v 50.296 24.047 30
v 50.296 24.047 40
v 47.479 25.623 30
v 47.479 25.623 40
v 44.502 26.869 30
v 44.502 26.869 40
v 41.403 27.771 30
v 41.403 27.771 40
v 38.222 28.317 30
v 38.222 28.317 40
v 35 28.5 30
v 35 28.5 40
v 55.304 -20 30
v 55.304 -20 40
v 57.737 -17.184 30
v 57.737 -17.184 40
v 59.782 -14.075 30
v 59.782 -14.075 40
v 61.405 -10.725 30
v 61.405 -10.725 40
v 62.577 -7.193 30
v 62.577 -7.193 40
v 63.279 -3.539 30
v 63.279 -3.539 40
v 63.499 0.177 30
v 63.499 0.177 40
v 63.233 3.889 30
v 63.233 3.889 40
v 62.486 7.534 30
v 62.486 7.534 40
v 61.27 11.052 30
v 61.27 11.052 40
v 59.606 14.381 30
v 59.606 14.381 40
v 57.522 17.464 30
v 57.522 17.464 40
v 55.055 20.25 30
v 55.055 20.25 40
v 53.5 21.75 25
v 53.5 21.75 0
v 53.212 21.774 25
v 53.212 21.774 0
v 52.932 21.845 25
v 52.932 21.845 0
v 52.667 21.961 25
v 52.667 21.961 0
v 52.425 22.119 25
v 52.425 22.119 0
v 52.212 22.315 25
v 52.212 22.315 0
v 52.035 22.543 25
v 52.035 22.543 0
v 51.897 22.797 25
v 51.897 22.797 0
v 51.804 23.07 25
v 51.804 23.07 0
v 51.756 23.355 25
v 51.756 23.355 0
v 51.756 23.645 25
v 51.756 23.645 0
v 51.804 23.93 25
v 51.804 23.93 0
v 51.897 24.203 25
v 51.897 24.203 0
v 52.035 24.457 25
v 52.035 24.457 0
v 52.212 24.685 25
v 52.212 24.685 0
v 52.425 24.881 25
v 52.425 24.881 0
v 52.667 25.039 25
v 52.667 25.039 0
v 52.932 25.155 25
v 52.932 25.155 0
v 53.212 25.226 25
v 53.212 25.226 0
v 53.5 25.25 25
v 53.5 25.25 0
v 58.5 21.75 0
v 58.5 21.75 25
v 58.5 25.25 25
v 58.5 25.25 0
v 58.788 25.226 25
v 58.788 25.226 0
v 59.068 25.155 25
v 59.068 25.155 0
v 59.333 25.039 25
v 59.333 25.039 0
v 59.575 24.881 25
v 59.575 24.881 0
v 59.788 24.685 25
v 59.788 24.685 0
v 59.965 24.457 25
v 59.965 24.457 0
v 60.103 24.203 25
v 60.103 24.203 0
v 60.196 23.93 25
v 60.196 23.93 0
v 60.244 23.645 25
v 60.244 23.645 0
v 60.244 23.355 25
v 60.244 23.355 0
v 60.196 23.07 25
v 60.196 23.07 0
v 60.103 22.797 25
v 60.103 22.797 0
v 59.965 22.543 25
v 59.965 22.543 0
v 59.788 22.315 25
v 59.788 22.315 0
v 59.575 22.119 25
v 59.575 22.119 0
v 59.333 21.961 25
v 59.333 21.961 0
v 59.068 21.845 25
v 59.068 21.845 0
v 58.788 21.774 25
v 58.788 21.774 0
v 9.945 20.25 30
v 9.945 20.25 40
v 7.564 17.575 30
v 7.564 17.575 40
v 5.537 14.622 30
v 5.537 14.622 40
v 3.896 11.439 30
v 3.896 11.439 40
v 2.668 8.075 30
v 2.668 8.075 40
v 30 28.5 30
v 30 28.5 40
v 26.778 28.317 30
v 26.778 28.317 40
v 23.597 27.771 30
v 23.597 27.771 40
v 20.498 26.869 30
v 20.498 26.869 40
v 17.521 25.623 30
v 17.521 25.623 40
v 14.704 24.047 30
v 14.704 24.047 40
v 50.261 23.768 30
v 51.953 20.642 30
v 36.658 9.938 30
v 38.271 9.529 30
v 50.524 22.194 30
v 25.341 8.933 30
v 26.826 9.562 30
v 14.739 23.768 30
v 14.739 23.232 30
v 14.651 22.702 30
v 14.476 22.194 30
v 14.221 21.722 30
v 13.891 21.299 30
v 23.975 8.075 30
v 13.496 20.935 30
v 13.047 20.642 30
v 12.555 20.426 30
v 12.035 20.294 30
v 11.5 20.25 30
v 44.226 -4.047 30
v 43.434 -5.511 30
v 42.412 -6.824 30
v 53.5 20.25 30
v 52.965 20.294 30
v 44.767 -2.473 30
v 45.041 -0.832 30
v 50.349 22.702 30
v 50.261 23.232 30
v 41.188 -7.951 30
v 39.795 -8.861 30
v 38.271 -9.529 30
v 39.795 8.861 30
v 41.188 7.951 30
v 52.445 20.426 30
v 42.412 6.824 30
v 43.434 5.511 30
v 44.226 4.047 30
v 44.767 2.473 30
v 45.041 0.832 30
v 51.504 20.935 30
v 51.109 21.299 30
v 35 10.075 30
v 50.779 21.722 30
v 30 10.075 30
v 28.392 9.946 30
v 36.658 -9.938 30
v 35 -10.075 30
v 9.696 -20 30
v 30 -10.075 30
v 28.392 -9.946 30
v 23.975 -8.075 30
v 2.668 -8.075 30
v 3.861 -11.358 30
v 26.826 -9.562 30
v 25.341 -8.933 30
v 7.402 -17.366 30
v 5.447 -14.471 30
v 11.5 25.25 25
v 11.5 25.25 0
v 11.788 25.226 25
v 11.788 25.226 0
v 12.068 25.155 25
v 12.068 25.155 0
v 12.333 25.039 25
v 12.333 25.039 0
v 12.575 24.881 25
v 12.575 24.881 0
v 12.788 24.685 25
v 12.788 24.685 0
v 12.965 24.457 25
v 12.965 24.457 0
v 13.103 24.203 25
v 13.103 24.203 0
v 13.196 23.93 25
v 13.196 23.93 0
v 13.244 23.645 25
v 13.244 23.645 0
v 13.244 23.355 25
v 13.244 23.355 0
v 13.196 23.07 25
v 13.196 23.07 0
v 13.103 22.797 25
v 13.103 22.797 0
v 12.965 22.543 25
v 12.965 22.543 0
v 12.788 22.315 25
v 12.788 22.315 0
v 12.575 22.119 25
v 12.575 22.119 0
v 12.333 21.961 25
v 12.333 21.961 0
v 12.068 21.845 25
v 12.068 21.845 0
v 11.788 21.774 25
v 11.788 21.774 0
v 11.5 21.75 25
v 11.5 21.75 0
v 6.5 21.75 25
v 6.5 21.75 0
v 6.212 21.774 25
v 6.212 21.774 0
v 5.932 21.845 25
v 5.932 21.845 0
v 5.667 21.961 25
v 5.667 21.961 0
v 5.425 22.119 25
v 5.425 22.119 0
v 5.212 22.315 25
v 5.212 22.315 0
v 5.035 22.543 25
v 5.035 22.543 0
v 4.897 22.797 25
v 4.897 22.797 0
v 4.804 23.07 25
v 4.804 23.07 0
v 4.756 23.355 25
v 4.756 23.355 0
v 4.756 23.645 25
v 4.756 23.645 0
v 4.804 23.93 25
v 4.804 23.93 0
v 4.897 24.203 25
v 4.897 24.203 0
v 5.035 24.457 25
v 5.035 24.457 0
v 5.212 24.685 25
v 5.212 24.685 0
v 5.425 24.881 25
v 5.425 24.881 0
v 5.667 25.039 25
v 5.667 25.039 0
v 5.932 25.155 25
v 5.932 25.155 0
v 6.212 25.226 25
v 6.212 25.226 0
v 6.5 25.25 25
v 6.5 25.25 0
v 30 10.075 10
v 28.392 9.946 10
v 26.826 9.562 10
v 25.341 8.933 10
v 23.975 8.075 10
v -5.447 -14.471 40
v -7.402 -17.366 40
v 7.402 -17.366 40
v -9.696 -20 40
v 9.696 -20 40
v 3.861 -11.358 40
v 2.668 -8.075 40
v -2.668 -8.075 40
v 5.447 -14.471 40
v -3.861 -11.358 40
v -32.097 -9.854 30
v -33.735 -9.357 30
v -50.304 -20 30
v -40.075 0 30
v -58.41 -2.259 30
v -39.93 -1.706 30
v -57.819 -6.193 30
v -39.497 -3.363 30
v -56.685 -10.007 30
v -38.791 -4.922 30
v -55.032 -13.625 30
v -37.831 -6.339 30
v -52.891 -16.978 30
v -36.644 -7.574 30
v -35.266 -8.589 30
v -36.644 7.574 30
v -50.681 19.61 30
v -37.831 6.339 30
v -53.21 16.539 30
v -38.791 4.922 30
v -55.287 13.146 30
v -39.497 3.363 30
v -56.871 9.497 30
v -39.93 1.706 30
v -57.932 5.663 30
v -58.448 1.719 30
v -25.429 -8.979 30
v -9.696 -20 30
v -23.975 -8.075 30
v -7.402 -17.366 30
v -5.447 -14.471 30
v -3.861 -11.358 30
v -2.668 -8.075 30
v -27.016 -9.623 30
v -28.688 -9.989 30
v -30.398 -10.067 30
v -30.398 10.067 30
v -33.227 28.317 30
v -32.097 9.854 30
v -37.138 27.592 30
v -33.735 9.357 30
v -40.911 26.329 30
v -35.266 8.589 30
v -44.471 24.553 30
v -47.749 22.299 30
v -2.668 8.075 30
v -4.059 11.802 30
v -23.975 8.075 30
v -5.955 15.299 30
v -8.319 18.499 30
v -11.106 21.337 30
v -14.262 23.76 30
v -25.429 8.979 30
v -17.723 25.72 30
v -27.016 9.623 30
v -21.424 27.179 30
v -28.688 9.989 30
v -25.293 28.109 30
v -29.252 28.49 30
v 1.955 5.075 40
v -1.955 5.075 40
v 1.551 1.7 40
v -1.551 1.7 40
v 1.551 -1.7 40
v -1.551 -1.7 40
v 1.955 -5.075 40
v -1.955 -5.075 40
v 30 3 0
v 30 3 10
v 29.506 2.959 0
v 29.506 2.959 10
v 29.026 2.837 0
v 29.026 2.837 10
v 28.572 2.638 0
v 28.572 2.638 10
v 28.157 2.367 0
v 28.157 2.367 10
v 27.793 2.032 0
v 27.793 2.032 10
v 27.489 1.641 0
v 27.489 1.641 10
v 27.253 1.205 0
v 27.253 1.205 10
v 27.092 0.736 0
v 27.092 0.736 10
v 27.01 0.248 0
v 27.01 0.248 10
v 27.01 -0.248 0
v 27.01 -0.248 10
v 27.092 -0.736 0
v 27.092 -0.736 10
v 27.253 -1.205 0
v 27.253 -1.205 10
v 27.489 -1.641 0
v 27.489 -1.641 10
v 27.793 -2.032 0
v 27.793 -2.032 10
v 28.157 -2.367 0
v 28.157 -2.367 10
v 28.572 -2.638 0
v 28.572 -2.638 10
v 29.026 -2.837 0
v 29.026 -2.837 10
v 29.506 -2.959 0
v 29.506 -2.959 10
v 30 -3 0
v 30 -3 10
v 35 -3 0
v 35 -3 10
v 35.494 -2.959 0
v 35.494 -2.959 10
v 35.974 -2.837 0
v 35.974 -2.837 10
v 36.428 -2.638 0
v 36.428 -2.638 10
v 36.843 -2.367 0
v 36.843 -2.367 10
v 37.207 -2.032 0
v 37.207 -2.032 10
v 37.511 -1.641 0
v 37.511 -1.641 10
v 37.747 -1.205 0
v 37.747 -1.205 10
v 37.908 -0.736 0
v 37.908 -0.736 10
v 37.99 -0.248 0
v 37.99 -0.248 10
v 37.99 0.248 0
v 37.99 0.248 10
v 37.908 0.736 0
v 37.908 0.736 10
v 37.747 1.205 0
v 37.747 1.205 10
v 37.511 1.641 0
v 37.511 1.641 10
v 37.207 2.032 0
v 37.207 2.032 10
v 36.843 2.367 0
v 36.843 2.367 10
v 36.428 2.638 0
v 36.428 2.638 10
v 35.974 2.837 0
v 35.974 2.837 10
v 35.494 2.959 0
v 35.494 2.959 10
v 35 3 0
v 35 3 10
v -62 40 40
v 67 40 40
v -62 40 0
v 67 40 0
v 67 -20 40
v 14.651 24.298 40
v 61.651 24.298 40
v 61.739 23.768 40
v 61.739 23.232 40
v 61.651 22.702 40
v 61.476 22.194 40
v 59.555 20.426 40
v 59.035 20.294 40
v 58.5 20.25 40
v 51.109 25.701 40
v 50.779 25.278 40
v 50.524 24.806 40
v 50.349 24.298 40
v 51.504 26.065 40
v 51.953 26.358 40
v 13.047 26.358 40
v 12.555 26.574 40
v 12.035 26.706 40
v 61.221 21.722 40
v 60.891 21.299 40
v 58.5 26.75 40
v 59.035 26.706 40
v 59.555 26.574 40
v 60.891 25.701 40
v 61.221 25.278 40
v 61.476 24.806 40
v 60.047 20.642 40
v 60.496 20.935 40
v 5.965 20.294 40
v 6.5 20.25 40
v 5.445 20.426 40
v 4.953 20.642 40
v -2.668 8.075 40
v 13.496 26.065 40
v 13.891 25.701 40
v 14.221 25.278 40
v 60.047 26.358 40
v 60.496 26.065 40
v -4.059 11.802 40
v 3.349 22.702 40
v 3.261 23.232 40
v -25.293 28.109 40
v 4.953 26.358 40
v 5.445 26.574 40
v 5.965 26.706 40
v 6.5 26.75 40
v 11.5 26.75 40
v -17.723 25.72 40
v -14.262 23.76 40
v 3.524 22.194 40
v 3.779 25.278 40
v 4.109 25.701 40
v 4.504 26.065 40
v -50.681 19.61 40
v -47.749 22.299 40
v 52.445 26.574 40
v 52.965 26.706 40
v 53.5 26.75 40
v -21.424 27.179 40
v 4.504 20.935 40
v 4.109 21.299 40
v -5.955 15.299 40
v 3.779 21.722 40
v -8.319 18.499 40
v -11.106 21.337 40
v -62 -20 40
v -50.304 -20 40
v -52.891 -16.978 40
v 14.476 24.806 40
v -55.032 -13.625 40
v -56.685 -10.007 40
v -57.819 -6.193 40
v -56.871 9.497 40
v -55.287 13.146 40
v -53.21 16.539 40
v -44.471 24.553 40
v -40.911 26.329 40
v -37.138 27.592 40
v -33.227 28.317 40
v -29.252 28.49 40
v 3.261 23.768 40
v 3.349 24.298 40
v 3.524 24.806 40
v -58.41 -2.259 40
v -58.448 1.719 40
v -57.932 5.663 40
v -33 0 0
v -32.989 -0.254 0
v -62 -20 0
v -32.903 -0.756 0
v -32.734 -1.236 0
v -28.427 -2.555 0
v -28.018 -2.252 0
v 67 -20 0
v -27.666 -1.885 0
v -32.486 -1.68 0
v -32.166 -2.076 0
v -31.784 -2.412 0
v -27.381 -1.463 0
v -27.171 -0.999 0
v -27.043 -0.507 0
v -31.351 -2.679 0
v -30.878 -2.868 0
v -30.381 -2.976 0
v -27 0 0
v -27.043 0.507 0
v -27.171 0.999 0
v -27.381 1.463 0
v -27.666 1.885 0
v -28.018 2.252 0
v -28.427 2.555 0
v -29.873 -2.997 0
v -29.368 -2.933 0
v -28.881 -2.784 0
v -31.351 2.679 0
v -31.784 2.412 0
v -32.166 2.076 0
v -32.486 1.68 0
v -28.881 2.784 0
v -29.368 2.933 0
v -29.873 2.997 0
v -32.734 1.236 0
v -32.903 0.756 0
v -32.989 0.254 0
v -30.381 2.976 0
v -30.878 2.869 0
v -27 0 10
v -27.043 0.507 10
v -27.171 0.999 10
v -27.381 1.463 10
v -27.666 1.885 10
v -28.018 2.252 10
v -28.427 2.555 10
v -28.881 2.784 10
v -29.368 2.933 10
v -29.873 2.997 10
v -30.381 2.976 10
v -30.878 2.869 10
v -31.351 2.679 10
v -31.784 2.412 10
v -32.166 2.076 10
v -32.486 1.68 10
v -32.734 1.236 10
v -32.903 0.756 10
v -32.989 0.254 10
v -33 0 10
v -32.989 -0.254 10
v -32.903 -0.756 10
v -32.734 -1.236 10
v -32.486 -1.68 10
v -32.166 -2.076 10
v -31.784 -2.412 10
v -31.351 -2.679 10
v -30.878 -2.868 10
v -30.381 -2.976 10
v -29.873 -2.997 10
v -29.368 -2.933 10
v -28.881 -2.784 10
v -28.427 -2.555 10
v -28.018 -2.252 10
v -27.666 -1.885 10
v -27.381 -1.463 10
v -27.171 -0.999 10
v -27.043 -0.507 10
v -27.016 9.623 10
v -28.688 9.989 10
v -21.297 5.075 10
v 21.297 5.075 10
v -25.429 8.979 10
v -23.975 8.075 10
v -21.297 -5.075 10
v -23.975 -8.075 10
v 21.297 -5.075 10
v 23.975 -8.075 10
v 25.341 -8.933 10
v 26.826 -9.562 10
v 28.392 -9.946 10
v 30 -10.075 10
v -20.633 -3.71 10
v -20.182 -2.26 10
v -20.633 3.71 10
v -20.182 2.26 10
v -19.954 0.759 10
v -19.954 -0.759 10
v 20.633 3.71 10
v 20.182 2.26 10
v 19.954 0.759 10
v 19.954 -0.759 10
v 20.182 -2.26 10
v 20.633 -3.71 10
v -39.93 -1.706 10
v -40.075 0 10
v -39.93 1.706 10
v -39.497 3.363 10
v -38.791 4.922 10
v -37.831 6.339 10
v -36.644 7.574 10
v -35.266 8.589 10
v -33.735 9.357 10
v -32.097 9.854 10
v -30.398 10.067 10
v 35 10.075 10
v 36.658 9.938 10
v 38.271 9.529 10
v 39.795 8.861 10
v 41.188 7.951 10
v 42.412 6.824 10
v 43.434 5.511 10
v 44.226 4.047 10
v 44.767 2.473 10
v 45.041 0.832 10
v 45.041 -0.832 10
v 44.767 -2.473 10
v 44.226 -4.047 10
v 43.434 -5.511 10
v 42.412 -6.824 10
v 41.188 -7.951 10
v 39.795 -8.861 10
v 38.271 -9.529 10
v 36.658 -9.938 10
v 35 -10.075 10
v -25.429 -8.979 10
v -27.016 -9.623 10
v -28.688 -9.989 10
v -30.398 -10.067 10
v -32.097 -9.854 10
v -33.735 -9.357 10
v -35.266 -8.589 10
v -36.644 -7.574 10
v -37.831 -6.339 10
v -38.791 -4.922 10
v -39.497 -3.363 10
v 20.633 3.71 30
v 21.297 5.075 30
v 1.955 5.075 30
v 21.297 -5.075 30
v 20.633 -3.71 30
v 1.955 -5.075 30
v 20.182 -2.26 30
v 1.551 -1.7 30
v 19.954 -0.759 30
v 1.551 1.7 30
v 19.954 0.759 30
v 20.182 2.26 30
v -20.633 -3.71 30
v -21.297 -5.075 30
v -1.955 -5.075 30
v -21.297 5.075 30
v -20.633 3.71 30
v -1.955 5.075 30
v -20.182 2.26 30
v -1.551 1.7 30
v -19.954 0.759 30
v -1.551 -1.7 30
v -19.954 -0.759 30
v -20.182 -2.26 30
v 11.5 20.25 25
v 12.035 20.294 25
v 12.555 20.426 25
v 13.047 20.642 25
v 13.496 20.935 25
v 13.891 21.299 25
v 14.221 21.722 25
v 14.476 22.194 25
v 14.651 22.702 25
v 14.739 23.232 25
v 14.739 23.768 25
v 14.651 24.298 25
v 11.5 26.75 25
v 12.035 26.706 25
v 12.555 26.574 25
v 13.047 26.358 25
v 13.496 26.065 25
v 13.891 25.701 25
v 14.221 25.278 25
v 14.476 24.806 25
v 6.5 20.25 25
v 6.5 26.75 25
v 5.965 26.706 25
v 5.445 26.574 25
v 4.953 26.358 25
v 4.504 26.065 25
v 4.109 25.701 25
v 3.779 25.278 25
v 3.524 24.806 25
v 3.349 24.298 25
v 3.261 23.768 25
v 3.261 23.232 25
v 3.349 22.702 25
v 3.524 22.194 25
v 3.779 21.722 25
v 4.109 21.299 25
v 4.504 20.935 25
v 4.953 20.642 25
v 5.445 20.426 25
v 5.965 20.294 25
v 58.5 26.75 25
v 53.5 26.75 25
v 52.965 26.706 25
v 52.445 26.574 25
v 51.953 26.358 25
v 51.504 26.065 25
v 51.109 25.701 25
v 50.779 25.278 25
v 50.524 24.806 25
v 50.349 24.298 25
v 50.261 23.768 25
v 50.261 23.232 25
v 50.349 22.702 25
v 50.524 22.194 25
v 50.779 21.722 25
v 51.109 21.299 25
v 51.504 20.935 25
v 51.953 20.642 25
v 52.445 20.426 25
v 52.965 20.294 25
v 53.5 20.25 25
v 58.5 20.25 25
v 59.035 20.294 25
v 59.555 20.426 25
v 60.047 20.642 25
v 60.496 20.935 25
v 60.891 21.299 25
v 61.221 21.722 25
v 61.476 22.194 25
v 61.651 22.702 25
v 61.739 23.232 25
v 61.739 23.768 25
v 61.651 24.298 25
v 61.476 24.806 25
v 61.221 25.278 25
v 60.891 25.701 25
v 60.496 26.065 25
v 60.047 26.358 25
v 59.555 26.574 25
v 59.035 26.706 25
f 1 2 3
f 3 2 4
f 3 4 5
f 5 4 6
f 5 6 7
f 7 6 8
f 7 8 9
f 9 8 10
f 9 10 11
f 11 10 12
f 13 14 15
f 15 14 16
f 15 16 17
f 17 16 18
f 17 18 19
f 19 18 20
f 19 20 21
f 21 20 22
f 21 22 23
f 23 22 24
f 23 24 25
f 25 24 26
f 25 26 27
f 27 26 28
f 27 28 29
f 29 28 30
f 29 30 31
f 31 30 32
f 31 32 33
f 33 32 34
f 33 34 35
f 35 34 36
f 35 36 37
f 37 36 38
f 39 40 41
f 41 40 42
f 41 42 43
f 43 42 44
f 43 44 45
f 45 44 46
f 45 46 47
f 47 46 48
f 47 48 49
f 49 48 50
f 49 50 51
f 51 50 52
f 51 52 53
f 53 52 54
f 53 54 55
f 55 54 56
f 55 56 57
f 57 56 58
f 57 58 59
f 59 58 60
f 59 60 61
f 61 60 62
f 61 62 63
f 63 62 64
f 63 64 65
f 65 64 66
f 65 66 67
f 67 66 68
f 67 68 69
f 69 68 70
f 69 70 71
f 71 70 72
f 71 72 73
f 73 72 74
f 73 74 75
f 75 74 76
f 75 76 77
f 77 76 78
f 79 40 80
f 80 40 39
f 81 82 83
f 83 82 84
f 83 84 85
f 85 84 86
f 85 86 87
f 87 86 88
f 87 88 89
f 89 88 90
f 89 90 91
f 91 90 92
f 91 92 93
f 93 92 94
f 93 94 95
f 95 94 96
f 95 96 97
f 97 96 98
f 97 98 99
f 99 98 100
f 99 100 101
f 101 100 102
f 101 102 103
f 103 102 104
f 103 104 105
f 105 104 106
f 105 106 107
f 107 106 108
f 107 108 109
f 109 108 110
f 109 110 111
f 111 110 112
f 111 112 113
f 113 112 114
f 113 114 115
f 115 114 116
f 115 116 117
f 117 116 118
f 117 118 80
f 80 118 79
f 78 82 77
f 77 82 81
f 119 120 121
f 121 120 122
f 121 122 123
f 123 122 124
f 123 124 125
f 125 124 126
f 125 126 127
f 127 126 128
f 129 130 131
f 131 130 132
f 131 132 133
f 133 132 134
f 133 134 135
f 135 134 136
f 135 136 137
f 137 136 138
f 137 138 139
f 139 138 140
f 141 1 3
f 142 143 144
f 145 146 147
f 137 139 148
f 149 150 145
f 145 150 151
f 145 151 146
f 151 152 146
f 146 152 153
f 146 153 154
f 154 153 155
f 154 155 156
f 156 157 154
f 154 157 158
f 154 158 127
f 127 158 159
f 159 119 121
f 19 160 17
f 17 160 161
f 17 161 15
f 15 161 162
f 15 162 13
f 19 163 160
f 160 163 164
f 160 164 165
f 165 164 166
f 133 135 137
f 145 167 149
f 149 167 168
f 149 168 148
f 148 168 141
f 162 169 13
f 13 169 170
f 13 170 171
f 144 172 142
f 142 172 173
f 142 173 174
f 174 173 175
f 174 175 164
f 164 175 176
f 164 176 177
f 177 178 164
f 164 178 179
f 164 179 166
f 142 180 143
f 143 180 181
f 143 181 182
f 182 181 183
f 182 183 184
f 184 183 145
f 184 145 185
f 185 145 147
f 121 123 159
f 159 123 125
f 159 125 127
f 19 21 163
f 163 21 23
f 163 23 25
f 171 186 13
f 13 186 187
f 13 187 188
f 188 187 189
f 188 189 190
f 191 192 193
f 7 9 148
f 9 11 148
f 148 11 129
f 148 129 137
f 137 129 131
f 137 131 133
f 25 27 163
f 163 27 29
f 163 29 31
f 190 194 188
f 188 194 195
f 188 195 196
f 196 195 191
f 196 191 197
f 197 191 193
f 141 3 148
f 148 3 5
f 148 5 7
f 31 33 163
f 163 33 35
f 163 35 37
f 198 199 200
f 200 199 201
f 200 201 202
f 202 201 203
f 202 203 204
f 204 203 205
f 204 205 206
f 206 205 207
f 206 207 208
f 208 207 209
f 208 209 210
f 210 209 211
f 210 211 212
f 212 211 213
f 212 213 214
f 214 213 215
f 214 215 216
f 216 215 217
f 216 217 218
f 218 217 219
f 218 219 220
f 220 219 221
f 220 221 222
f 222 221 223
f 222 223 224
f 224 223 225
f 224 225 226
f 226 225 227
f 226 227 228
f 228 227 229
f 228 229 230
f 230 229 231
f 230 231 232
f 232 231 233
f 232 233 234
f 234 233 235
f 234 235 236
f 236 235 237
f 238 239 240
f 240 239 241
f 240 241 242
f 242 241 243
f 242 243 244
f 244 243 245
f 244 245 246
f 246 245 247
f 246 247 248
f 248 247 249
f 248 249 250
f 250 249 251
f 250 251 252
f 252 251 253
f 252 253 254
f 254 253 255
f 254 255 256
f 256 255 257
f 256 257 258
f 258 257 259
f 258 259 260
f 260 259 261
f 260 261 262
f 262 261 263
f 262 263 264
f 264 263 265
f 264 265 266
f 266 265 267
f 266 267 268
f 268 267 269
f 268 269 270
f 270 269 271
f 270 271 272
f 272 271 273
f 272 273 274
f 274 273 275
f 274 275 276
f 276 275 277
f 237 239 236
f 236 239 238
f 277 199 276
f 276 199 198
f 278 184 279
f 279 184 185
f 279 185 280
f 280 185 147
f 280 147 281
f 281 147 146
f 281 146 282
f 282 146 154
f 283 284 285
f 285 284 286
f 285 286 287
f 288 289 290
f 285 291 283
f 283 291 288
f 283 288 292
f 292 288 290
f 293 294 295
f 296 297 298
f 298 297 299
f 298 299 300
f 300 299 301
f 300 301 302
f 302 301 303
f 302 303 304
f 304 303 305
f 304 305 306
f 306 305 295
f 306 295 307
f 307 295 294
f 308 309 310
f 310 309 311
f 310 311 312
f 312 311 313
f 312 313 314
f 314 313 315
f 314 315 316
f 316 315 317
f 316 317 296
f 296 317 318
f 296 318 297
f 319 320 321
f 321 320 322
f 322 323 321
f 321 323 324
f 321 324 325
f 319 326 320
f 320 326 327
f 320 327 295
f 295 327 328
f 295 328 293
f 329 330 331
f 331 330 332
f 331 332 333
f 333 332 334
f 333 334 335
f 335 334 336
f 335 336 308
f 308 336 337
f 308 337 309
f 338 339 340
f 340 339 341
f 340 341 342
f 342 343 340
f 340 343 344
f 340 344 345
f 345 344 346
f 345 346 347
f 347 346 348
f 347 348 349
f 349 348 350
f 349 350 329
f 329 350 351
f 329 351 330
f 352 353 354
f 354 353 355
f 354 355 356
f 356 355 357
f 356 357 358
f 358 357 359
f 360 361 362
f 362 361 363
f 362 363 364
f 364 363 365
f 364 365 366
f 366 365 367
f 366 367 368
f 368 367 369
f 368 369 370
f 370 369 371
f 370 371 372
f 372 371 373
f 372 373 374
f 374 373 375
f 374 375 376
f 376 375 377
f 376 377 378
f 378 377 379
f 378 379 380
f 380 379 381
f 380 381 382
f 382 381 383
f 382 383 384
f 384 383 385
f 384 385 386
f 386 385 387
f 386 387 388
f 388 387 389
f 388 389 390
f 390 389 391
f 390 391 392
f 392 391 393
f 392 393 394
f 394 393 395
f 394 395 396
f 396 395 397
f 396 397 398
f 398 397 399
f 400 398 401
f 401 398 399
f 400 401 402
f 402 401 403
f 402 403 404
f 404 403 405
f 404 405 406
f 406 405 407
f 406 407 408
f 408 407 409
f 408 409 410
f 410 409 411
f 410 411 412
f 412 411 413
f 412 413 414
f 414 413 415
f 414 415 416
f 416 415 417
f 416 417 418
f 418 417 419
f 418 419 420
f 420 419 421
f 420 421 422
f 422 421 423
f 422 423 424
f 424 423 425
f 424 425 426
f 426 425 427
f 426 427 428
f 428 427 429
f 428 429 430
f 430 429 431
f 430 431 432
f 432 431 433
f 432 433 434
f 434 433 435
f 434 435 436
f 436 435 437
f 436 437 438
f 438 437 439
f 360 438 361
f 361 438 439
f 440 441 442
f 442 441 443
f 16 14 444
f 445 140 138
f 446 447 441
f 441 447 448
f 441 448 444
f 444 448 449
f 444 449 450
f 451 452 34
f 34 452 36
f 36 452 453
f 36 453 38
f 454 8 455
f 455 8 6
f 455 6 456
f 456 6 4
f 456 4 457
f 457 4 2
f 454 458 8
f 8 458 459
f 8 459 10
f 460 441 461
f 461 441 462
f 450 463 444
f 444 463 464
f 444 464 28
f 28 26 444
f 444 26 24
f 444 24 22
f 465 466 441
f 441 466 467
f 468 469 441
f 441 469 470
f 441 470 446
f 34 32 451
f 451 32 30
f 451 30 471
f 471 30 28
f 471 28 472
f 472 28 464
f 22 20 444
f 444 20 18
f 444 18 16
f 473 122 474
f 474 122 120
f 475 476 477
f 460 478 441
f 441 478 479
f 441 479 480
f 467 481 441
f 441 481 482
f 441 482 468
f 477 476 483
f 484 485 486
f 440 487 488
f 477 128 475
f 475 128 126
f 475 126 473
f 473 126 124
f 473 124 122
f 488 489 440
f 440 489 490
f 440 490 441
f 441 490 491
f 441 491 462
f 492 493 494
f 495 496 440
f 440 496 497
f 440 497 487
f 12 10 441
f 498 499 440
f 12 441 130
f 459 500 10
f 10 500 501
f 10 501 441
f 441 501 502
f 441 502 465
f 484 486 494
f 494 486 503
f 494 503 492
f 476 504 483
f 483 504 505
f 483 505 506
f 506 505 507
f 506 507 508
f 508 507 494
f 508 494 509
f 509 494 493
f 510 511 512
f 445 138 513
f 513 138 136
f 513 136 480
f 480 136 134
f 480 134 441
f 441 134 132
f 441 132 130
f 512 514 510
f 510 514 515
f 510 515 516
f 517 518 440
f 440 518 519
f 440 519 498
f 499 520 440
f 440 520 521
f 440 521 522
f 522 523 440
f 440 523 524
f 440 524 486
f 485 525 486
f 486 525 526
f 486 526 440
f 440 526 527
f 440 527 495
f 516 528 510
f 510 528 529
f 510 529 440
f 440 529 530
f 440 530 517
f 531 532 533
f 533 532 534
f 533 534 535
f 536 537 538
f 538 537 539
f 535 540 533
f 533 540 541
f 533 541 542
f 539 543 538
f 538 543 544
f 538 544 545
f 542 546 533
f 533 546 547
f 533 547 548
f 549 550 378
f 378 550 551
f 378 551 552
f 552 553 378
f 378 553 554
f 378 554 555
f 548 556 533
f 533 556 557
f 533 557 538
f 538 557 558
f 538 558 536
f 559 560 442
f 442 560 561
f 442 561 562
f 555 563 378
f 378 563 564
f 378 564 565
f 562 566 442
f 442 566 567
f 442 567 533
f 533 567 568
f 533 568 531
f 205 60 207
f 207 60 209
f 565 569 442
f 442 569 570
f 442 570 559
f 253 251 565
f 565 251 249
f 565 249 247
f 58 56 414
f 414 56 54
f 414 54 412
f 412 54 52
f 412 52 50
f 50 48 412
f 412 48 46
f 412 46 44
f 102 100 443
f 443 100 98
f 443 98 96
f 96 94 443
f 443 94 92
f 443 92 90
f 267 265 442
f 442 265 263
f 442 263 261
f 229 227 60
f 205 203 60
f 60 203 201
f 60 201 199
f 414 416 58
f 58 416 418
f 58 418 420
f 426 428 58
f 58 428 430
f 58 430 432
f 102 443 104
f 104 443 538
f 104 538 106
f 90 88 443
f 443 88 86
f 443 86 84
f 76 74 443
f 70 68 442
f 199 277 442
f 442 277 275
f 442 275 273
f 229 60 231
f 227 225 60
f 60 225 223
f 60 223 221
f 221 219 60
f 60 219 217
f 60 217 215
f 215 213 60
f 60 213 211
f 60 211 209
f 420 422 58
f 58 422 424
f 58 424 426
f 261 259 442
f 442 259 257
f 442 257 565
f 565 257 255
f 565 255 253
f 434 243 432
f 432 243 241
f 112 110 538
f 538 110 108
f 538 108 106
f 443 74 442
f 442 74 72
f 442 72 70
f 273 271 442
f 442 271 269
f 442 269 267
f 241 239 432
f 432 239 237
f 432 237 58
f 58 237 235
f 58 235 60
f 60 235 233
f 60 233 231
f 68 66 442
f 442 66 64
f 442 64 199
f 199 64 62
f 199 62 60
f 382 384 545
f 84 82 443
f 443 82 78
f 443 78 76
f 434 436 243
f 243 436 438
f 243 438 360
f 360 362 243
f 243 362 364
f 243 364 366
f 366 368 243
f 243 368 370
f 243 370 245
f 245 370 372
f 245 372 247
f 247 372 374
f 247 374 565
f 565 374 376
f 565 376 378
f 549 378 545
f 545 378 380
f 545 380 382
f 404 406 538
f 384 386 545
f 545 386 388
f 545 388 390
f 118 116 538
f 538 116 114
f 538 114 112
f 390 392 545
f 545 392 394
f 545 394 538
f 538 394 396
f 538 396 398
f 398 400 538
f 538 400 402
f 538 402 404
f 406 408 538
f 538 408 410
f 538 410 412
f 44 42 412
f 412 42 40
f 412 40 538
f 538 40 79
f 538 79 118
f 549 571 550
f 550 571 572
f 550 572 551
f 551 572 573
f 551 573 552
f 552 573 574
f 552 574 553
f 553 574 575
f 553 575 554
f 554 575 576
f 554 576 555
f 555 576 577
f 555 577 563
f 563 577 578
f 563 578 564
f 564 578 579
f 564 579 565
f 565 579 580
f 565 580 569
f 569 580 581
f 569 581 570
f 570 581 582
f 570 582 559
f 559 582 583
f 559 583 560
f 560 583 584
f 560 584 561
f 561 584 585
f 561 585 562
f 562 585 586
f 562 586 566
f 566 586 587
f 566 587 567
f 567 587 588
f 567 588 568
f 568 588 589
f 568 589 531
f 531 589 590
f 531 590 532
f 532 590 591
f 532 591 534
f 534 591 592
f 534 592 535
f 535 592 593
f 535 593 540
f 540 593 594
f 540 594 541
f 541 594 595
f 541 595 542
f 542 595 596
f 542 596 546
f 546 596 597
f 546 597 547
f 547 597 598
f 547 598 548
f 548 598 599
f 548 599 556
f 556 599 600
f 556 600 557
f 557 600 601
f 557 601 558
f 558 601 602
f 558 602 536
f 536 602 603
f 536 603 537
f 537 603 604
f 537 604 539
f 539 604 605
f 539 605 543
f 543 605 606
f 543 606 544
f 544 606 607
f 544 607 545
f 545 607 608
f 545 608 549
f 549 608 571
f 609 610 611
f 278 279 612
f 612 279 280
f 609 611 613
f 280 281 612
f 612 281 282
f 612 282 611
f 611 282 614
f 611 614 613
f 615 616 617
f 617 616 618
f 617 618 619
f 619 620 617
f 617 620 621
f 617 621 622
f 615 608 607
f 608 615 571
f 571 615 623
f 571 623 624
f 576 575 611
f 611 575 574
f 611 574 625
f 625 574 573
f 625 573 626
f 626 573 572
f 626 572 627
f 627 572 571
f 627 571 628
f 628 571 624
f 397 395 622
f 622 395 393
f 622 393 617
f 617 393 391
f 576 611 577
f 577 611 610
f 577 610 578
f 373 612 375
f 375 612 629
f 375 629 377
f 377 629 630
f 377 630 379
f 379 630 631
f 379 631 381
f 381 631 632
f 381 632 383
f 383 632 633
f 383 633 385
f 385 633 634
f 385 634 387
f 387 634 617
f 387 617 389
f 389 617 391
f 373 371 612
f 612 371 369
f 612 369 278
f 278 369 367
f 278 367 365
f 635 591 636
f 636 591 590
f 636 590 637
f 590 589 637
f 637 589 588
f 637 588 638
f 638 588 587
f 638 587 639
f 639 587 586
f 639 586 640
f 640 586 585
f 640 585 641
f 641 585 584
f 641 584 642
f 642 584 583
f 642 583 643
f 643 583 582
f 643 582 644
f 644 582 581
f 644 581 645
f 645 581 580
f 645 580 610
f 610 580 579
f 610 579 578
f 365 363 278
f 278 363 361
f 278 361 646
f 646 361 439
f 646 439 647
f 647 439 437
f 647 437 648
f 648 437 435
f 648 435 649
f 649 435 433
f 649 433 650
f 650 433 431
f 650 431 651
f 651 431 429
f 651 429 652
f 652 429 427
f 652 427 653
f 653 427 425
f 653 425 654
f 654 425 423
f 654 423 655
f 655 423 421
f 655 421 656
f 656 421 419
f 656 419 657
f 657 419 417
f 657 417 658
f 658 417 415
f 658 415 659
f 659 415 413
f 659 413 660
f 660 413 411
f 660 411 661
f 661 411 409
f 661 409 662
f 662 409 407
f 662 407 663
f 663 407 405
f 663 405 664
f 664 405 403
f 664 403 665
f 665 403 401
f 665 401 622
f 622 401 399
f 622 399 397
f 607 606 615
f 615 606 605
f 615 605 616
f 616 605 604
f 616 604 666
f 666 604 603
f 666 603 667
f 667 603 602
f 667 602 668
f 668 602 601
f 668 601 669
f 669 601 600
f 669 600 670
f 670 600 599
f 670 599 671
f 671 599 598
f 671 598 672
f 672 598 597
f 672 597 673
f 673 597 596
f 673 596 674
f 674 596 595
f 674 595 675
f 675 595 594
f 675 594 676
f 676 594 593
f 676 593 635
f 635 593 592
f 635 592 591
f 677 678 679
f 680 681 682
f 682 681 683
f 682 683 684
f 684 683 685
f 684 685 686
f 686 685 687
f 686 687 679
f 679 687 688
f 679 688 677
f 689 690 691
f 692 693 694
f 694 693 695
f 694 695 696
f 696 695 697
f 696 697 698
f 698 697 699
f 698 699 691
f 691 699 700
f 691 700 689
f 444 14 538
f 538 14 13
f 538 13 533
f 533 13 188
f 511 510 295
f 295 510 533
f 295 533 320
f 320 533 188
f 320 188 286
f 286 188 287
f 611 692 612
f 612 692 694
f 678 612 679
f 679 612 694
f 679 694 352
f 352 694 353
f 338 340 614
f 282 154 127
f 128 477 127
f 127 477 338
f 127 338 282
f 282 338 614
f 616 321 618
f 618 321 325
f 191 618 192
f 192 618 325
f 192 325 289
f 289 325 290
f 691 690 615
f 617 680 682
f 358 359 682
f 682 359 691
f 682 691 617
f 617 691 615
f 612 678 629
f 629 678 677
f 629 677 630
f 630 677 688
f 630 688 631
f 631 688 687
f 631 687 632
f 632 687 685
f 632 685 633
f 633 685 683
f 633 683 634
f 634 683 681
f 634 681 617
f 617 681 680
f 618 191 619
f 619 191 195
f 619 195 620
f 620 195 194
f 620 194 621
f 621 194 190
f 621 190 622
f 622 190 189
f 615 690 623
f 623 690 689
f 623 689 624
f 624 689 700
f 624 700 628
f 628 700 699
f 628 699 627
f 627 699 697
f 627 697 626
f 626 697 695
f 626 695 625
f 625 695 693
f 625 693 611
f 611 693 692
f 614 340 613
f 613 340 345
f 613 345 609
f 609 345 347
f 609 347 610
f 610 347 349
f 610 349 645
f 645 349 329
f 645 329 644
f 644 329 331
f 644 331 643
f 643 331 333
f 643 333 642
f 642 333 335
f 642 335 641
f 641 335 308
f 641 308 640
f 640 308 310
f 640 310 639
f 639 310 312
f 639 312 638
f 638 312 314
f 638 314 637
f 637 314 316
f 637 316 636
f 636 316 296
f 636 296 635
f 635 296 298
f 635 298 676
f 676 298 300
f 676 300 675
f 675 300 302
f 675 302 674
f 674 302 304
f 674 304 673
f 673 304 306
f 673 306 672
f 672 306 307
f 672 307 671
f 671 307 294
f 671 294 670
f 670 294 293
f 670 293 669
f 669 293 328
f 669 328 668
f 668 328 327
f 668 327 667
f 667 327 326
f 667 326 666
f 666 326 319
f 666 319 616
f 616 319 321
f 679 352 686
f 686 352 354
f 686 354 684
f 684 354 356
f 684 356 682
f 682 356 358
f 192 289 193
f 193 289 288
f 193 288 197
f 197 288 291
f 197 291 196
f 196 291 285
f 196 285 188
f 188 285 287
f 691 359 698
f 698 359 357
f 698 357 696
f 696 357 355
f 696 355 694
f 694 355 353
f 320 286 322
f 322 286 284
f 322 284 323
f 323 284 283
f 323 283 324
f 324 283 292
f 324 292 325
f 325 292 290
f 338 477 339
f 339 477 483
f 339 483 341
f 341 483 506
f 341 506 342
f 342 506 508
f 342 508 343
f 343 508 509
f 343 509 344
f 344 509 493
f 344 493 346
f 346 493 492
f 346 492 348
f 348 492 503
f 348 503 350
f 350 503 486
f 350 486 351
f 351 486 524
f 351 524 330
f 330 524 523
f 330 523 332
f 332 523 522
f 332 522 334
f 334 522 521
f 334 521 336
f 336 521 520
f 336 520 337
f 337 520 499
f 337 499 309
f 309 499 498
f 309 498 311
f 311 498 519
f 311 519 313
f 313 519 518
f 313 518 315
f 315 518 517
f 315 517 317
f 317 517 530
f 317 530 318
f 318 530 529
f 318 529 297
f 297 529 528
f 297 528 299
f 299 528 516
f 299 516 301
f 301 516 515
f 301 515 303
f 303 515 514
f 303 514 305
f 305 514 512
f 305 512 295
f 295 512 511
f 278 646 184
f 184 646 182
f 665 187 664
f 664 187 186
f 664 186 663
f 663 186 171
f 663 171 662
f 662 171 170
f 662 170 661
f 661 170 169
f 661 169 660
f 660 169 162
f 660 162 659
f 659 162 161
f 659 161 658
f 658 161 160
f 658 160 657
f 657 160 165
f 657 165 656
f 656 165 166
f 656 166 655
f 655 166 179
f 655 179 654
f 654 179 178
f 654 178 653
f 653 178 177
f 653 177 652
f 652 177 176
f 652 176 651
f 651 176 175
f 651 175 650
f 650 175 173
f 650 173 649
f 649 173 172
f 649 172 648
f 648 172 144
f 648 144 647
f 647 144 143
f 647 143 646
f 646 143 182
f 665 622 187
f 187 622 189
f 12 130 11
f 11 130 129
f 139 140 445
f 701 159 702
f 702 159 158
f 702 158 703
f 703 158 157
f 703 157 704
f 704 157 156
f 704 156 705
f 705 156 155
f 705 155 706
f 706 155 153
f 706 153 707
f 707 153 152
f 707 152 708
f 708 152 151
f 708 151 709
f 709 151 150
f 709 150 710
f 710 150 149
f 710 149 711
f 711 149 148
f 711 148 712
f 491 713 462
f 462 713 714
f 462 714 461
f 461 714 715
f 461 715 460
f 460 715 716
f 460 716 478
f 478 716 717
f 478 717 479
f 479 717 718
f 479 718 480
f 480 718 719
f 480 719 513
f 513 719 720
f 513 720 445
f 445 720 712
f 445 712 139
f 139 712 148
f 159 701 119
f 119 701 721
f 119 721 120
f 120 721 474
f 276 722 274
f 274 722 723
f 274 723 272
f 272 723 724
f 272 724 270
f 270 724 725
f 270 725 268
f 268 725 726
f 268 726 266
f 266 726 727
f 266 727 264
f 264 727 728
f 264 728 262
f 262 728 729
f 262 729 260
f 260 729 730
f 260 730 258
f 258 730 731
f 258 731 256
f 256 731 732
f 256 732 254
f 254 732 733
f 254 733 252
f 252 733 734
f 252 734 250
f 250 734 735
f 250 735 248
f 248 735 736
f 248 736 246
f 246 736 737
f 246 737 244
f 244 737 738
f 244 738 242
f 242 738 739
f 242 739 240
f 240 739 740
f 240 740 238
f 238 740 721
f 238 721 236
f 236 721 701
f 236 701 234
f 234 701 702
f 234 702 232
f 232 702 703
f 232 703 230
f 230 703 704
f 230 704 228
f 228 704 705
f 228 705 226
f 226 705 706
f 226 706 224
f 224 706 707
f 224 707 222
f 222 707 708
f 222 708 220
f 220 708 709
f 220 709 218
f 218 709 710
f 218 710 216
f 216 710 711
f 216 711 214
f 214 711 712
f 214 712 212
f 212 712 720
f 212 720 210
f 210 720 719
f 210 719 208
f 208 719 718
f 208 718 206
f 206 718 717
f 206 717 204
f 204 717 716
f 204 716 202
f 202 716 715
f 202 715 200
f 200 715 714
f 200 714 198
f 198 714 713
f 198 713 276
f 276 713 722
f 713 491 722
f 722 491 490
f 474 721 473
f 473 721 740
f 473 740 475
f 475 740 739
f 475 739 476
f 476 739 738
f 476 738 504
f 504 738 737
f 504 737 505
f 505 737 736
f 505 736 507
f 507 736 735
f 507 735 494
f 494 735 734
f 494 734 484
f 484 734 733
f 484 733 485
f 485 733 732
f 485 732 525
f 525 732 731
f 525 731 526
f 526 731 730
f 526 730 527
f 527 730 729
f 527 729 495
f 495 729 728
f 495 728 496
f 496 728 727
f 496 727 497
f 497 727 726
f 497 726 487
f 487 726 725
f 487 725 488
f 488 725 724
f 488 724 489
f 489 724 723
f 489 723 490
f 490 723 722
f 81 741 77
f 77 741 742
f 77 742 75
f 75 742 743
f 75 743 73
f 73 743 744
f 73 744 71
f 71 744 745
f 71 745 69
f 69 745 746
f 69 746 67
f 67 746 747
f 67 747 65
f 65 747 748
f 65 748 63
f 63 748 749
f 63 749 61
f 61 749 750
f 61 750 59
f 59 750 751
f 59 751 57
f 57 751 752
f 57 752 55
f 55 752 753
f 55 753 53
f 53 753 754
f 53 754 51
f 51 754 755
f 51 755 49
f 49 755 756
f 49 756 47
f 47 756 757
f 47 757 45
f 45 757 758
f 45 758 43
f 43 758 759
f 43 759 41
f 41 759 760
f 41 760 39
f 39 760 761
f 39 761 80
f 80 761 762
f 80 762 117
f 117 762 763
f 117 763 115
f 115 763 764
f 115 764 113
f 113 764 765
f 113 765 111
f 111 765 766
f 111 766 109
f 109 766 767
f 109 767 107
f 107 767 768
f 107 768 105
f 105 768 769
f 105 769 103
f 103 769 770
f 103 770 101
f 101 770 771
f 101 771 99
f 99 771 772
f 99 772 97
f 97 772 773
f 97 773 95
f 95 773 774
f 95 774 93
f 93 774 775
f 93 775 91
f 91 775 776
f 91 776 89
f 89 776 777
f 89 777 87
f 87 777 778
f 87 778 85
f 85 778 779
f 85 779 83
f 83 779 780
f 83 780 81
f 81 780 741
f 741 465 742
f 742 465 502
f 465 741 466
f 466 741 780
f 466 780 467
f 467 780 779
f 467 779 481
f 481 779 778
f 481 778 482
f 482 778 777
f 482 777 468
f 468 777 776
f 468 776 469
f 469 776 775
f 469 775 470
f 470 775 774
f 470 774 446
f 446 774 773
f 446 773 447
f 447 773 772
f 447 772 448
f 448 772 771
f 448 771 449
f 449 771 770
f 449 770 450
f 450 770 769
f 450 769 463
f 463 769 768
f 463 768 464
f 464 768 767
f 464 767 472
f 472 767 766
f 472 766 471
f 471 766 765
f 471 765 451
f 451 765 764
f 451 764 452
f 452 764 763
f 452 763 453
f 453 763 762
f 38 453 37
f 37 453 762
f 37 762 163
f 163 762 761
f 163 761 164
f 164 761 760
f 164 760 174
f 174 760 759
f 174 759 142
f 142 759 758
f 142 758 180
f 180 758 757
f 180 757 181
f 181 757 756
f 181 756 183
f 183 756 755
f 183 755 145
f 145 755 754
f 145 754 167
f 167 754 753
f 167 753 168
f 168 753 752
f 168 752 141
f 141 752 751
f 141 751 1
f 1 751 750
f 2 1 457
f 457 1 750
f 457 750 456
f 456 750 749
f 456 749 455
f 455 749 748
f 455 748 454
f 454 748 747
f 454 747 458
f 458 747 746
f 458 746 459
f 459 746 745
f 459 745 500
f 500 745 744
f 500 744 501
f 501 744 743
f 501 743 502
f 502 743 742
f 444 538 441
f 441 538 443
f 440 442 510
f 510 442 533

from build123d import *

# Parameters (mm, degrees)
SKETCH1_W                          = 200
SKETCH1_H                          = 90
BOSS_EXTRUDE1_DEPTH                = 40
SHAFTFITS_WITH_5MM_TOLERANCE_REACH = 120.743
SKETCH2_R                          = 3
SHAFTFITTOLERANCE_DEPTH            = 40
SKETCH3_R                          = 8.075
PULLEY_DEPTH                       = 30
SKETCH4_R                          = 26.5
GEARS_FITS_DEPTH                   = 10
GEAR_LETOUT_REACH                  = 120.743
SKETCH5_W                          = 200
SKETCH5_H                          = 30
CLOSED_LOOP_TIMING_BELT_REACH      = 116.891
SKETCH8_W                          = 60
SKETCH8_H                          = 3
SKETCH7_R                          = 10.075
PULLEY_MARGIN_DEPTH                = 20
SKETCH6_R                          = 28.5
GEAR_MARGIN_DEPTH                  = 10
PULLEYFIXTOLERANCE_DEPTH           = 30
GEARFITSTOLERANCE_DEPTH            = 10
M3_SCREWHOLES_REACH                = 116.891
M3_SCREWHEADS_DEPTH                = 5
M3_SCREWHEADS_DIRECTION_2_REACH    = 113.803
SKETCH16_W                         = 33
SKETCH16_H                         = 60
REMOVEEXTRA1_DEPTH                 = 40
SKETCH17_W                         = 5
SKETCH17_H                         = 60
REMOVEEXTRA2_DEPTH                 = 40


with BuildPart() as part:
    # Sketch1 → Boss-Extrude1 (new body)
    with BuildSketch(Plane.XY):
        with Locations((0, -5)):
            Rectangle(SKETCH1_W, SKETCH1_H)
    extrude(amount=BOSS_EXTRUDE1_DEPTH)

    # Sketch2 → ShaftFits_with.5mm_tolerance (cut, up to next)
    with BuildSketch(Plane.XY.offset(40), mode=Mode.PRIVATE) as shaftfits_with_5mm_tolerance_sk1:
        with Locations((30, 0)):
            Circle(SKETCH2_R)
    shaftfits_with_5mm_tolerance_tool1 = extrude(shaftfits_with_5mm_tolerance_sk1.sketch, amount=-SHAFTFITS_WITH_5MM_TOLERANCE_REACH, mode=Mode.PRIVATE) & part.part
    # Sketch2 → ShaftFits_with.5mm_tolerance (cut, up to next)
    with BuildSketch(Plane.XY.offset(40), mode=Mode.PRIVATE) as shaftfits_with_5mm_tolerance_sk2:
        with Locations(Location((-30, 0, 0), (0, 0, 180))):
            Circle(SKETCH2_R)
    shaftfits_with_5mm_tolerance_tool2 = extrude(shaftfits_with_5mm_tolerance_sk2.sketch, amount=-SHAFTFITS_WITH_5MM_TOLERANCE_REACH, mode=Mode.PRIVATE) & part.part
    add(shaftfits_with_5mm_tolerance_tool1.solids().sort_by_distance((30, 0, 40))[0], mode=Mode.SUBTRACT)
    add(shaftfits_with_5mm_tolerance_tool2.solids().sort_by_distance((-30, 0, 40))[0], mode=Mode.SUBTRACT)

    # Sketch9 → ShaftFitTolerance (cut)
    with BuildSketch(Plane.XY.offset(40)):
        with BuildLine():
            Line((30, 3), (35, 3))
            ThreePointArc((35, 3), (38, 0), (35, -3))
            Line((35, -3), (30, -3))
            ThreePointArc((30, -3), (27, 0), (30, 3))
        make_face()
    extrude(amount=-SHAFTFITTOLERANCE_DEPTH, mode=Mode.SUBTRACT)

    # Sketch3 → Pulley (cut)
    with BuildSketch(Plane.XY.offset(40)):
        with Locations((30, 0)):
            Circle(SKETCH3_R)
        with Locations(Location((-30, 0, 0), (0, 0, 180))):
            Circle(SKETCH3_R)
    extrude(amount=-PULLEY_DEPTH, mode=Mode.SUBTRACT)

    # Sketch4 → Gears fits (cut)
    with BuildSketch(Plane.XY.offset(40)):
        with Locations((30, 0)):
            Circle(SKETCH4_R)
        with Locations(Location((-30, 0, 0), (0, 0, 180))):
            Circle(SKETCH4_R)
    extrude(amount=-GEARS_FITS_DEPTH, mode=Mode.SUBTRACT)

    # Sketch5 → Gear letout (cut, up to next)
    with BuildSketch(Plane.XY.offset(40), mode=Mode.PRIVATE) as gear_letout_sk1:
        with Locations((0, -35)):
            Rectangle(SKETCH5_W, SKETCH5_H)
    gear_letout_tool1 = extrude(gear_letout_sk1.sketch, amount=-GEAR_LETOUT_REACH, mode=Mode.PRIVATE) & part.part
    add(gear_letout_tool1.solids().sort_by_distance((0, -35, 40))[0], mode=Mode.SUBTRACT)

    # Closed-loop timing belt: up to this face of the body (flat: up to its plane)
    closed_loop_timing_belt_end = Plane(part.part.faces().sort_by_distance((-22.15339549, 0, 10))[0])
    # Sketch8 → Closed-loop timing belt (cut, up to the picked face)
    with BuildSketch(Plane.XY.offset(40), mode=Mode.PRIVATE) as closed_loop_timing_belt_sk1:
        with Locations((0, 6.575)):
            Rectangle(SKETCH8_W, SKETCH8_H)
    closed_loop_timing_belt_tool1 = split(extrude(closed_loop_timing_belt_sk1.sketch, amount=-CLOSED_LOOP_TIMING_BELT_REACH, mode=Mode.PRIVATE), bisect_by=closed_loop_timing_belt_end, keep=Keep.BOTH, mode=Mode.PRIVATE)
    # Sketch8 → Closed-loop timing belt (cut, up to the picked face)
    with BuildSketch(Plane.XY.offset(40), mode=Mode.PRIVATE) as closed_loop_timing_belt_sk2:
        with Locations((0, -6.575)):
            Rectangle(SKETCH8_W, SKETCH8_H)
    closed_loop_timing_belt_tool2 = split(extrude(closed_loop_timing_belt_sk2.sketch, amount=-CLOSED_LOOP_TIMING_BELT_REACH, mode=Mode.PRIVATE), bisect_by=closed_loop_timing_belt_end, keep=Keep.BOTH, mode=Mode.PRIVATE)
    add(closed_loop_timing_belt_tool1.solids().sort_by(Axis((0, 6.575, 40), (0, 0, -1)))[0], mode=Mode.SUBTRACT)
    add(closed_loop_timing_belt_tool2.solids().sort_by(Axis((0, -6.575, 40), (0, 0, -1)))[0], mode=Mode.SUBTRACT)

    # Sketch7 → Pulley margin (cut)
    with BuildSketch(Plane.XY.offset(30)):
        with Locations((30, 0)):
            Circle(SKETCH7_R)
        with Locations((-30, 0)):
            Circle(SKETCH7_R)
    extrude(amount=-PULLEY_MARGIN_DEPTH, mode=Mode.SUBTRACT)

    # Sketch6 → Gear margin (cut)
    with BuildSketch(Plane.XY.offset(40)):
        with Locations((30, 0)):
            Circle(SKETCH6_R)
        with Locations((-30, 0)):
            Circle(SKETCH6_R)
    extrude(amount=-GEAR_MARGIN_DEPTH, mode=Mode.SUBTRACT)

    # Sketch12 → PulleyFixTolerance (cut)
    with BuildSketch(Plane.XY.offset(40)):
        with BuildLine():
            Line((30, 10.075), (35, 10.075))
            ThreePointArc((35, 10.075), (45.075, 0), (35, -10.075))
            Line((35, -10.075), (30, -10.075))
            ThreePointArc((30, -10.075), (19.925, 0), (30, 10.075))
        make_face()
    extrude(amount=-PULLEYFIXTOLERANCE_DEPTH, mode=Mode.SUBTRACT)

    # Sketch13 → GearFitsTolerance (cut)
    with BuildSketch(Plane.XY.offset(40)):
        with BuildLine():
            Line((30, 28.5), (35, 28.5))
            ThreePointArc((35, 28.5), (63.5, 0), (35, -28.5))
            Line((35, -28.5), (30, -28.5))
            ThreePointArc((30, -28.5), (1.5, 0), (30, 28.5))
        make_face()
    extrude(amount=-GEARFITSTOLERANCE_DEPTH, mode=Mode.SUBTRACT)

    # M3 ScrewHoles: up to this face of the body (flat: up to its plane)
    m3_screwholes_end = Plane(part.part.faces().sort_by_distance((0, -15.281996404, 40))[0])
    # Sketch14 → M3 ScrewHoles (cut, up to the picked face)
    with BuildSketch(Plane(origin=(0, 0, 0), x_dir=(-1, 0, 0), z_dir=(0, 0, -1)), mode=Mode.PRIVATE) as m3_screwholes_sk1:
        with BuildLine():
            Line((-6.5, 21.75), (-11.5, 21.75))
            ThreePointArc((-11.5, 21.75), (-13.25, 23.5), (-11.5, 25.25))
            Line((-11.5, 25.25), (-6.5, 25.25))
            ThreePointArc((-6.5, 25.25), (-4.75, 23.5), (-6.5, 21.75))
        make_face()
    m3_screwholes_tool1 = split(extrude(m3_screwholes_sk1.sketch, amount=-M3_SCREWHOLES_REACH, mode=Mode.PRIVATE), bisect_by=m3_screwholes_end, keep=Keep.BOTH, mode=Mode.PRIVATE)
    # Sketch14 → M3 ScrewHoles (cut, up to the picked face)
    with BuildSketch(Plane(origin=(0, 0, 0), x_dir=(-1, 0, 0), z_dir=(0, 0, -1)), mode=Mode.PRIVATE) as m3_screwholes_sk2:
        with BuildLine():
            Line((-53.5, 21.75), (-58.5, 21.75))
            ThreePointArc((-58.5, 21.75), (-60.25, 23.5), (-58.5, 25.25))
            Line((-58.5, 25.25), (-53.5, 25.25))
            ThreePointArc((-53.5, 25.25), (-51.75, 23.5), (-53.5, 21.75))
        make_face()
    m3_screwholes_tool2 = split(extrude(m3_screwholes_sk2.sketch, amount=-M3_SCREWHOLES_REACH, mode=Mode.PRIVATE), bisect_by=m3_screwholes_end, keep=Keep.BOTH, mode=Mode.PRIVATE)
    # Sketch14 → M3 ScrewHoles (cut, up to the picked face)
    with BuildSketch(Plane(origin=(0, 0, 0), x_dir=(-1, 0, 0), z_dir=(0, 0, -1)), mode=Mode.PRIVATE) as m3_screwholes_sk3:
        with BuildLine():
            Line((-53.5, -21.75), (-58.5, -21.75))
            ThreePointArc((-58.5, -21.75), (-60.25, -23.5), (-58.5, -25.25))
            Line((-58.5, -25.25), (-53.5, -25.25))
            ThreePointArc((-53.5, -25.25), (-51.75, -23.5), (-53.5, -21.75))
        make_face()
    m3_screwholes_tool3 = split(extrude(m3_screwholes_sk3.sketch, amount=-M3_SCREWHOLES_REACH, mode=Mode.PRIVATE), bisect_by=m3_screwholes_end, keep=Keep.BOTH, mode=Mode.PRIVATE)
    # Sketch14 → M3 ScrewHoles (cut, up to the picked face)
    with BuildSketch(Plane(origin=(0, 0, 0), x_dir=(-1, 0, 0), z_dir=(0, 0, -1)), mode=Mode.PRIVATE) as m3_screwholes_sk4:
        with BuildLine():
            Line((-6.5, -21.75), (-11.5, -21.75))
            ThreePointArc((-11.5, -21.75), (-13.25, -23.5), (-11.5, -25.25))
            Line((-11.5, -25.25), (-6.5, -25.25))
            ThreePointArc((-6.5, -25.25), (-4.75, -23.5), (-6.5, -21.75))
        make_face()
    m3_screwholes_tool4 = split(extrude(m3_screwholes_sk4.sketch, amount=-M3_SCREWHOLES_REACH, mode=Mode.PRIVATE), bisect_by=m3_screwholes_end, keep=Keep.BOTH, mode=Mode.PRIVATE)
    add(m3_screwholes_tool1.solids().sort_by(Axis((9, 23.5, 0), (0, 0, 1)))[0], mode=Mode.SUBTRACT)
    add(m3_screwholes_tool2.solids().sort_by(Axis((56, 23.5, 0), (0, 0, 1)))[0], mode=Mode.SUBTRACT)
    add(m3_screwholes_tool3.solids().sort_by(Axis((56, -23.5, 0), (0, 0, 1)))[0], mode=Mode.SUBTRACT)
    add(m3_screwholes_tool4.solids().sort_by(Axis((9, -23.5, 0), (0, 0, 1)))[0], mode=Mode.SUBTRACT)

    # Sketch15 → M3 ScrewHeads (cut)
    with BuildSketch(Plane.XY.offset(30)):
        with BuildLine():
            Line((6.5, 26.75), (11.5, 26.75))
            ThreePointArc((11.5, 26.75), (14.75, 23.5), (11.5, 20.25))
            Line((11.5, 20.25), (6.5, 20.25))
            ThreePointArc((6.5, 20.25), (3.25, 23.5), (6.5, 26.75))
        make_face()
        with BuildLine():
            Line((53.5, 26.75), (58.5, 26.75))
            ThreePointArc((58.5, 26.75), (61.75, 23.5), (58.5, 20.25))
            Line((58.5, 20.25), (53.5, 20.25))
            ThreePointArc((53.5, 20.25), (50.25, 23.5), (53.5, 26.75))
        make_face()
    extrude(amount=-M3_SCREWHEADS_DEPTH, mode=Mode.SUBTRACT)

    # M3 ScrewHeads direction 2: up to this face of the body (flat: up to its plane)
    m3_screwheads_direction_2_end = Plane(part.part.faces().sort_by_distance((0, -15.281996404, 40))[0])
    # Sketch15 → M3 ScrewHeads direction 2 (cut, up to the picked face)
    with BuildSketch(Plane.XY.offset(30), mode=Mode.PRIVATE) as m3_screwheads_direction_2_sk1:
        with BuildLine():
            Line((6.5, 26.75), (11.5, 26.75))
            ThreePointArc((11.5, 26.75), (14.75, 23.5), (11.5, 20.25))
            Line((11.5, 20.25), (6.5, 20.25))
            ThreePointArc((6.5, 20.25), (3.25, 23.5), (6.5, 26.75))
        make_face()
    m3_screwheads_direction_2_tool1 = split(extrude(m3_screwheads_direction_2_sk1.sketch, amount=M3_SCREWHEADS_DIRECTION_2_REACH, mode=Mode.PRIVATE), bisect_by=m3_screwheads_direction_2_end, keep=Keep.BOTH, mode=Mode.PRIVATE)
    # Sketch15 → M3 ScrewHeads direction 2 (cut, up to the picked face)
    with BuildSketch(Plane.XY.offset(30), mode=Mode.PRIVATE) as m3_screwheads_direction_2_sk2:
        with BuildLine():
            Line((53.5, 26.75), (58.5, 26.75))
            ThreePointArc((58.5, 26.75), (61.75, 23.5), (58.5, 20.25))
            Line((58.5, 20.25), (53.5, 20.25))
            ThreePointArc((53.5, 20.25), (50.25, 23.5), (53.5, 26.75))
        make_face()
    m3_screwheads_direction_2_tool2 = split(extrude(m3_screwheads_direction_2_sk2.sketch, amount=M3_SCREWHEADS_DIRECTION_2_REACH, mode=Mode.PRIVATE), bisect_by=m3_screwheads_direction_2_end, keep=Keep.BOTH, mode=Mode.PRIVATE)
    add(m3_screwheads_direction_2_tool1.solids().sort_by(Axis((9, 23.5, 30), (0, 0, 1)))[0], mode=Mode.SUBTRACT)
    add(m3_screwheads_direction_2_tool2.solids().sort_by(Axis((56, 23.5, 30), (0, 0, 1)))[0], mode=Mode.SUBTRACT)

    # Sketch16 → RemoveExtra1 (cut)
    with BuildSketch(Plane.XY.offset(40)):
        with Locations((-83.5, 10)):
            Rectangle(SKETCH16_W, SKETCH16_H)
        with Locations((83.5, 10)):
            Rectangle(SKETCH16_W, SKETCH16_H)
    extrude(amount=-REMOVEEXTRA1_DEPTH, mode=Mode.SUBTRACT)

    # Sketch17 → RemoveExtra2 (cut)
    with BuildSketch(Plane.XY.offset(40)):
        with Locations((-64.5, 10)):
            Rectangle(SKETCH17_W, SKETCH17_H)
    extrude(amount=-REMOVEEXTRA2_DEPTH, mode=Mode.SUBTRACT)


solid = part.part
